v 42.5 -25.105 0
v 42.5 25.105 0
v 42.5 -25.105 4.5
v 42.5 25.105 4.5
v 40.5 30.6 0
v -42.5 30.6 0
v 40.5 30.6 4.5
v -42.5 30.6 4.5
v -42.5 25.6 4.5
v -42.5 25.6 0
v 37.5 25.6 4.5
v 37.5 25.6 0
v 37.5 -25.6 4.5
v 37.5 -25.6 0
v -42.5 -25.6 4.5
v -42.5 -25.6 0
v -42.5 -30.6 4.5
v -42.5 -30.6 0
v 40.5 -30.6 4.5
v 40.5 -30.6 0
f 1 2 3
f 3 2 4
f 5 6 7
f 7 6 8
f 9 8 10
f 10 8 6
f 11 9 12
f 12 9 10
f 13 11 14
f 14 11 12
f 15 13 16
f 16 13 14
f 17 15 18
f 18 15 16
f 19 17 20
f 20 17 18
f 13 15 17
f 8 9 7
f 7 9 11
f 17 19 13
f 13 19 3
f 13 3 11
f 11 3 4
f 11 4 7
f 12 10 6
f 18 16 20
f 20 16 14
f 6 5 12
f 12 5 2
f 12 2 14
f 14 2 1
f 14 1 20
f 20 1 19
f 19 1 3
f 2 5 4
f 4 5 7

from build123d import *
from OCP.BRepFilletAPI import BRepFilletAPI_MakeChamfer

# Parameters (mm, degrees)
BOSS_EXTRUDE1_DEPTH = 4.5
CHAMFER1_SIZE       = 2
CHAMFER1_SIZE2      = 5.494954839


with BuildPart() as part:
    # Sketch1 → Boss-Extrude1 (new body)
    with BuildSketch(Plane.XY):
        Polygon((-42.5, -25.6), (-42.5, -30.6), (42.5, -30.6), (42.5, 30.6), (-42.5, 30.6), (-42.5, 25.6), (37.5, 25.6), (37.5, -25.6), align=None)
    extrude(amount=BOSS_EXTRUDE1_DEPTH)

    # Chamfer1: one chamfer whose edges measure the first distance from different faces: ONE call of the kernel's chamfer builder (chamfer() names one face for all edges)
    chamfer1_edges_1 = [part.edges().sort_by_distance(p)[0] for p in [
        (42.5, -30.6, 2.25),
    ]]
    chamfer1_side_1 = [part.faces().sort_by_distance(p)[0] for p in [
        (0, -30.6, 2.25),
    ]]
    chamfer1_edges_2 = [part.edges().sort_by_distance(p)[0] for p in [
        (42.5, 30.6, 2.25),
    ]]
    chamfer1_side_2 = [part.faces().sort_by_distance(p)[0] for p in [
        (0, 30.6, 2.25),
    ]]
    chamfer1 = BRepFilletAPI_MakeChamfer(part.part.solid().wrapped)
    for e in chamfer1_edges_1:
        chamfer1.Add(CHAMFER1_SIZE, CHAMFER1_SIZE2, e.wrapped, chamfer1_side_1[0].wrapped)  # the first distance lies on this face
    for e in chamfer1_edges_2:
        chamfer1.Add(CHAMFER1_SIZE, CHAMFER1_SIZE2, e.wrapped, chamfer1_side_2[0].wrapped)  # the first distance lies on this face
    add(Compound.cast(chamfer1.Shape()), mode=Mode.REPLACE)


solid = part.part
